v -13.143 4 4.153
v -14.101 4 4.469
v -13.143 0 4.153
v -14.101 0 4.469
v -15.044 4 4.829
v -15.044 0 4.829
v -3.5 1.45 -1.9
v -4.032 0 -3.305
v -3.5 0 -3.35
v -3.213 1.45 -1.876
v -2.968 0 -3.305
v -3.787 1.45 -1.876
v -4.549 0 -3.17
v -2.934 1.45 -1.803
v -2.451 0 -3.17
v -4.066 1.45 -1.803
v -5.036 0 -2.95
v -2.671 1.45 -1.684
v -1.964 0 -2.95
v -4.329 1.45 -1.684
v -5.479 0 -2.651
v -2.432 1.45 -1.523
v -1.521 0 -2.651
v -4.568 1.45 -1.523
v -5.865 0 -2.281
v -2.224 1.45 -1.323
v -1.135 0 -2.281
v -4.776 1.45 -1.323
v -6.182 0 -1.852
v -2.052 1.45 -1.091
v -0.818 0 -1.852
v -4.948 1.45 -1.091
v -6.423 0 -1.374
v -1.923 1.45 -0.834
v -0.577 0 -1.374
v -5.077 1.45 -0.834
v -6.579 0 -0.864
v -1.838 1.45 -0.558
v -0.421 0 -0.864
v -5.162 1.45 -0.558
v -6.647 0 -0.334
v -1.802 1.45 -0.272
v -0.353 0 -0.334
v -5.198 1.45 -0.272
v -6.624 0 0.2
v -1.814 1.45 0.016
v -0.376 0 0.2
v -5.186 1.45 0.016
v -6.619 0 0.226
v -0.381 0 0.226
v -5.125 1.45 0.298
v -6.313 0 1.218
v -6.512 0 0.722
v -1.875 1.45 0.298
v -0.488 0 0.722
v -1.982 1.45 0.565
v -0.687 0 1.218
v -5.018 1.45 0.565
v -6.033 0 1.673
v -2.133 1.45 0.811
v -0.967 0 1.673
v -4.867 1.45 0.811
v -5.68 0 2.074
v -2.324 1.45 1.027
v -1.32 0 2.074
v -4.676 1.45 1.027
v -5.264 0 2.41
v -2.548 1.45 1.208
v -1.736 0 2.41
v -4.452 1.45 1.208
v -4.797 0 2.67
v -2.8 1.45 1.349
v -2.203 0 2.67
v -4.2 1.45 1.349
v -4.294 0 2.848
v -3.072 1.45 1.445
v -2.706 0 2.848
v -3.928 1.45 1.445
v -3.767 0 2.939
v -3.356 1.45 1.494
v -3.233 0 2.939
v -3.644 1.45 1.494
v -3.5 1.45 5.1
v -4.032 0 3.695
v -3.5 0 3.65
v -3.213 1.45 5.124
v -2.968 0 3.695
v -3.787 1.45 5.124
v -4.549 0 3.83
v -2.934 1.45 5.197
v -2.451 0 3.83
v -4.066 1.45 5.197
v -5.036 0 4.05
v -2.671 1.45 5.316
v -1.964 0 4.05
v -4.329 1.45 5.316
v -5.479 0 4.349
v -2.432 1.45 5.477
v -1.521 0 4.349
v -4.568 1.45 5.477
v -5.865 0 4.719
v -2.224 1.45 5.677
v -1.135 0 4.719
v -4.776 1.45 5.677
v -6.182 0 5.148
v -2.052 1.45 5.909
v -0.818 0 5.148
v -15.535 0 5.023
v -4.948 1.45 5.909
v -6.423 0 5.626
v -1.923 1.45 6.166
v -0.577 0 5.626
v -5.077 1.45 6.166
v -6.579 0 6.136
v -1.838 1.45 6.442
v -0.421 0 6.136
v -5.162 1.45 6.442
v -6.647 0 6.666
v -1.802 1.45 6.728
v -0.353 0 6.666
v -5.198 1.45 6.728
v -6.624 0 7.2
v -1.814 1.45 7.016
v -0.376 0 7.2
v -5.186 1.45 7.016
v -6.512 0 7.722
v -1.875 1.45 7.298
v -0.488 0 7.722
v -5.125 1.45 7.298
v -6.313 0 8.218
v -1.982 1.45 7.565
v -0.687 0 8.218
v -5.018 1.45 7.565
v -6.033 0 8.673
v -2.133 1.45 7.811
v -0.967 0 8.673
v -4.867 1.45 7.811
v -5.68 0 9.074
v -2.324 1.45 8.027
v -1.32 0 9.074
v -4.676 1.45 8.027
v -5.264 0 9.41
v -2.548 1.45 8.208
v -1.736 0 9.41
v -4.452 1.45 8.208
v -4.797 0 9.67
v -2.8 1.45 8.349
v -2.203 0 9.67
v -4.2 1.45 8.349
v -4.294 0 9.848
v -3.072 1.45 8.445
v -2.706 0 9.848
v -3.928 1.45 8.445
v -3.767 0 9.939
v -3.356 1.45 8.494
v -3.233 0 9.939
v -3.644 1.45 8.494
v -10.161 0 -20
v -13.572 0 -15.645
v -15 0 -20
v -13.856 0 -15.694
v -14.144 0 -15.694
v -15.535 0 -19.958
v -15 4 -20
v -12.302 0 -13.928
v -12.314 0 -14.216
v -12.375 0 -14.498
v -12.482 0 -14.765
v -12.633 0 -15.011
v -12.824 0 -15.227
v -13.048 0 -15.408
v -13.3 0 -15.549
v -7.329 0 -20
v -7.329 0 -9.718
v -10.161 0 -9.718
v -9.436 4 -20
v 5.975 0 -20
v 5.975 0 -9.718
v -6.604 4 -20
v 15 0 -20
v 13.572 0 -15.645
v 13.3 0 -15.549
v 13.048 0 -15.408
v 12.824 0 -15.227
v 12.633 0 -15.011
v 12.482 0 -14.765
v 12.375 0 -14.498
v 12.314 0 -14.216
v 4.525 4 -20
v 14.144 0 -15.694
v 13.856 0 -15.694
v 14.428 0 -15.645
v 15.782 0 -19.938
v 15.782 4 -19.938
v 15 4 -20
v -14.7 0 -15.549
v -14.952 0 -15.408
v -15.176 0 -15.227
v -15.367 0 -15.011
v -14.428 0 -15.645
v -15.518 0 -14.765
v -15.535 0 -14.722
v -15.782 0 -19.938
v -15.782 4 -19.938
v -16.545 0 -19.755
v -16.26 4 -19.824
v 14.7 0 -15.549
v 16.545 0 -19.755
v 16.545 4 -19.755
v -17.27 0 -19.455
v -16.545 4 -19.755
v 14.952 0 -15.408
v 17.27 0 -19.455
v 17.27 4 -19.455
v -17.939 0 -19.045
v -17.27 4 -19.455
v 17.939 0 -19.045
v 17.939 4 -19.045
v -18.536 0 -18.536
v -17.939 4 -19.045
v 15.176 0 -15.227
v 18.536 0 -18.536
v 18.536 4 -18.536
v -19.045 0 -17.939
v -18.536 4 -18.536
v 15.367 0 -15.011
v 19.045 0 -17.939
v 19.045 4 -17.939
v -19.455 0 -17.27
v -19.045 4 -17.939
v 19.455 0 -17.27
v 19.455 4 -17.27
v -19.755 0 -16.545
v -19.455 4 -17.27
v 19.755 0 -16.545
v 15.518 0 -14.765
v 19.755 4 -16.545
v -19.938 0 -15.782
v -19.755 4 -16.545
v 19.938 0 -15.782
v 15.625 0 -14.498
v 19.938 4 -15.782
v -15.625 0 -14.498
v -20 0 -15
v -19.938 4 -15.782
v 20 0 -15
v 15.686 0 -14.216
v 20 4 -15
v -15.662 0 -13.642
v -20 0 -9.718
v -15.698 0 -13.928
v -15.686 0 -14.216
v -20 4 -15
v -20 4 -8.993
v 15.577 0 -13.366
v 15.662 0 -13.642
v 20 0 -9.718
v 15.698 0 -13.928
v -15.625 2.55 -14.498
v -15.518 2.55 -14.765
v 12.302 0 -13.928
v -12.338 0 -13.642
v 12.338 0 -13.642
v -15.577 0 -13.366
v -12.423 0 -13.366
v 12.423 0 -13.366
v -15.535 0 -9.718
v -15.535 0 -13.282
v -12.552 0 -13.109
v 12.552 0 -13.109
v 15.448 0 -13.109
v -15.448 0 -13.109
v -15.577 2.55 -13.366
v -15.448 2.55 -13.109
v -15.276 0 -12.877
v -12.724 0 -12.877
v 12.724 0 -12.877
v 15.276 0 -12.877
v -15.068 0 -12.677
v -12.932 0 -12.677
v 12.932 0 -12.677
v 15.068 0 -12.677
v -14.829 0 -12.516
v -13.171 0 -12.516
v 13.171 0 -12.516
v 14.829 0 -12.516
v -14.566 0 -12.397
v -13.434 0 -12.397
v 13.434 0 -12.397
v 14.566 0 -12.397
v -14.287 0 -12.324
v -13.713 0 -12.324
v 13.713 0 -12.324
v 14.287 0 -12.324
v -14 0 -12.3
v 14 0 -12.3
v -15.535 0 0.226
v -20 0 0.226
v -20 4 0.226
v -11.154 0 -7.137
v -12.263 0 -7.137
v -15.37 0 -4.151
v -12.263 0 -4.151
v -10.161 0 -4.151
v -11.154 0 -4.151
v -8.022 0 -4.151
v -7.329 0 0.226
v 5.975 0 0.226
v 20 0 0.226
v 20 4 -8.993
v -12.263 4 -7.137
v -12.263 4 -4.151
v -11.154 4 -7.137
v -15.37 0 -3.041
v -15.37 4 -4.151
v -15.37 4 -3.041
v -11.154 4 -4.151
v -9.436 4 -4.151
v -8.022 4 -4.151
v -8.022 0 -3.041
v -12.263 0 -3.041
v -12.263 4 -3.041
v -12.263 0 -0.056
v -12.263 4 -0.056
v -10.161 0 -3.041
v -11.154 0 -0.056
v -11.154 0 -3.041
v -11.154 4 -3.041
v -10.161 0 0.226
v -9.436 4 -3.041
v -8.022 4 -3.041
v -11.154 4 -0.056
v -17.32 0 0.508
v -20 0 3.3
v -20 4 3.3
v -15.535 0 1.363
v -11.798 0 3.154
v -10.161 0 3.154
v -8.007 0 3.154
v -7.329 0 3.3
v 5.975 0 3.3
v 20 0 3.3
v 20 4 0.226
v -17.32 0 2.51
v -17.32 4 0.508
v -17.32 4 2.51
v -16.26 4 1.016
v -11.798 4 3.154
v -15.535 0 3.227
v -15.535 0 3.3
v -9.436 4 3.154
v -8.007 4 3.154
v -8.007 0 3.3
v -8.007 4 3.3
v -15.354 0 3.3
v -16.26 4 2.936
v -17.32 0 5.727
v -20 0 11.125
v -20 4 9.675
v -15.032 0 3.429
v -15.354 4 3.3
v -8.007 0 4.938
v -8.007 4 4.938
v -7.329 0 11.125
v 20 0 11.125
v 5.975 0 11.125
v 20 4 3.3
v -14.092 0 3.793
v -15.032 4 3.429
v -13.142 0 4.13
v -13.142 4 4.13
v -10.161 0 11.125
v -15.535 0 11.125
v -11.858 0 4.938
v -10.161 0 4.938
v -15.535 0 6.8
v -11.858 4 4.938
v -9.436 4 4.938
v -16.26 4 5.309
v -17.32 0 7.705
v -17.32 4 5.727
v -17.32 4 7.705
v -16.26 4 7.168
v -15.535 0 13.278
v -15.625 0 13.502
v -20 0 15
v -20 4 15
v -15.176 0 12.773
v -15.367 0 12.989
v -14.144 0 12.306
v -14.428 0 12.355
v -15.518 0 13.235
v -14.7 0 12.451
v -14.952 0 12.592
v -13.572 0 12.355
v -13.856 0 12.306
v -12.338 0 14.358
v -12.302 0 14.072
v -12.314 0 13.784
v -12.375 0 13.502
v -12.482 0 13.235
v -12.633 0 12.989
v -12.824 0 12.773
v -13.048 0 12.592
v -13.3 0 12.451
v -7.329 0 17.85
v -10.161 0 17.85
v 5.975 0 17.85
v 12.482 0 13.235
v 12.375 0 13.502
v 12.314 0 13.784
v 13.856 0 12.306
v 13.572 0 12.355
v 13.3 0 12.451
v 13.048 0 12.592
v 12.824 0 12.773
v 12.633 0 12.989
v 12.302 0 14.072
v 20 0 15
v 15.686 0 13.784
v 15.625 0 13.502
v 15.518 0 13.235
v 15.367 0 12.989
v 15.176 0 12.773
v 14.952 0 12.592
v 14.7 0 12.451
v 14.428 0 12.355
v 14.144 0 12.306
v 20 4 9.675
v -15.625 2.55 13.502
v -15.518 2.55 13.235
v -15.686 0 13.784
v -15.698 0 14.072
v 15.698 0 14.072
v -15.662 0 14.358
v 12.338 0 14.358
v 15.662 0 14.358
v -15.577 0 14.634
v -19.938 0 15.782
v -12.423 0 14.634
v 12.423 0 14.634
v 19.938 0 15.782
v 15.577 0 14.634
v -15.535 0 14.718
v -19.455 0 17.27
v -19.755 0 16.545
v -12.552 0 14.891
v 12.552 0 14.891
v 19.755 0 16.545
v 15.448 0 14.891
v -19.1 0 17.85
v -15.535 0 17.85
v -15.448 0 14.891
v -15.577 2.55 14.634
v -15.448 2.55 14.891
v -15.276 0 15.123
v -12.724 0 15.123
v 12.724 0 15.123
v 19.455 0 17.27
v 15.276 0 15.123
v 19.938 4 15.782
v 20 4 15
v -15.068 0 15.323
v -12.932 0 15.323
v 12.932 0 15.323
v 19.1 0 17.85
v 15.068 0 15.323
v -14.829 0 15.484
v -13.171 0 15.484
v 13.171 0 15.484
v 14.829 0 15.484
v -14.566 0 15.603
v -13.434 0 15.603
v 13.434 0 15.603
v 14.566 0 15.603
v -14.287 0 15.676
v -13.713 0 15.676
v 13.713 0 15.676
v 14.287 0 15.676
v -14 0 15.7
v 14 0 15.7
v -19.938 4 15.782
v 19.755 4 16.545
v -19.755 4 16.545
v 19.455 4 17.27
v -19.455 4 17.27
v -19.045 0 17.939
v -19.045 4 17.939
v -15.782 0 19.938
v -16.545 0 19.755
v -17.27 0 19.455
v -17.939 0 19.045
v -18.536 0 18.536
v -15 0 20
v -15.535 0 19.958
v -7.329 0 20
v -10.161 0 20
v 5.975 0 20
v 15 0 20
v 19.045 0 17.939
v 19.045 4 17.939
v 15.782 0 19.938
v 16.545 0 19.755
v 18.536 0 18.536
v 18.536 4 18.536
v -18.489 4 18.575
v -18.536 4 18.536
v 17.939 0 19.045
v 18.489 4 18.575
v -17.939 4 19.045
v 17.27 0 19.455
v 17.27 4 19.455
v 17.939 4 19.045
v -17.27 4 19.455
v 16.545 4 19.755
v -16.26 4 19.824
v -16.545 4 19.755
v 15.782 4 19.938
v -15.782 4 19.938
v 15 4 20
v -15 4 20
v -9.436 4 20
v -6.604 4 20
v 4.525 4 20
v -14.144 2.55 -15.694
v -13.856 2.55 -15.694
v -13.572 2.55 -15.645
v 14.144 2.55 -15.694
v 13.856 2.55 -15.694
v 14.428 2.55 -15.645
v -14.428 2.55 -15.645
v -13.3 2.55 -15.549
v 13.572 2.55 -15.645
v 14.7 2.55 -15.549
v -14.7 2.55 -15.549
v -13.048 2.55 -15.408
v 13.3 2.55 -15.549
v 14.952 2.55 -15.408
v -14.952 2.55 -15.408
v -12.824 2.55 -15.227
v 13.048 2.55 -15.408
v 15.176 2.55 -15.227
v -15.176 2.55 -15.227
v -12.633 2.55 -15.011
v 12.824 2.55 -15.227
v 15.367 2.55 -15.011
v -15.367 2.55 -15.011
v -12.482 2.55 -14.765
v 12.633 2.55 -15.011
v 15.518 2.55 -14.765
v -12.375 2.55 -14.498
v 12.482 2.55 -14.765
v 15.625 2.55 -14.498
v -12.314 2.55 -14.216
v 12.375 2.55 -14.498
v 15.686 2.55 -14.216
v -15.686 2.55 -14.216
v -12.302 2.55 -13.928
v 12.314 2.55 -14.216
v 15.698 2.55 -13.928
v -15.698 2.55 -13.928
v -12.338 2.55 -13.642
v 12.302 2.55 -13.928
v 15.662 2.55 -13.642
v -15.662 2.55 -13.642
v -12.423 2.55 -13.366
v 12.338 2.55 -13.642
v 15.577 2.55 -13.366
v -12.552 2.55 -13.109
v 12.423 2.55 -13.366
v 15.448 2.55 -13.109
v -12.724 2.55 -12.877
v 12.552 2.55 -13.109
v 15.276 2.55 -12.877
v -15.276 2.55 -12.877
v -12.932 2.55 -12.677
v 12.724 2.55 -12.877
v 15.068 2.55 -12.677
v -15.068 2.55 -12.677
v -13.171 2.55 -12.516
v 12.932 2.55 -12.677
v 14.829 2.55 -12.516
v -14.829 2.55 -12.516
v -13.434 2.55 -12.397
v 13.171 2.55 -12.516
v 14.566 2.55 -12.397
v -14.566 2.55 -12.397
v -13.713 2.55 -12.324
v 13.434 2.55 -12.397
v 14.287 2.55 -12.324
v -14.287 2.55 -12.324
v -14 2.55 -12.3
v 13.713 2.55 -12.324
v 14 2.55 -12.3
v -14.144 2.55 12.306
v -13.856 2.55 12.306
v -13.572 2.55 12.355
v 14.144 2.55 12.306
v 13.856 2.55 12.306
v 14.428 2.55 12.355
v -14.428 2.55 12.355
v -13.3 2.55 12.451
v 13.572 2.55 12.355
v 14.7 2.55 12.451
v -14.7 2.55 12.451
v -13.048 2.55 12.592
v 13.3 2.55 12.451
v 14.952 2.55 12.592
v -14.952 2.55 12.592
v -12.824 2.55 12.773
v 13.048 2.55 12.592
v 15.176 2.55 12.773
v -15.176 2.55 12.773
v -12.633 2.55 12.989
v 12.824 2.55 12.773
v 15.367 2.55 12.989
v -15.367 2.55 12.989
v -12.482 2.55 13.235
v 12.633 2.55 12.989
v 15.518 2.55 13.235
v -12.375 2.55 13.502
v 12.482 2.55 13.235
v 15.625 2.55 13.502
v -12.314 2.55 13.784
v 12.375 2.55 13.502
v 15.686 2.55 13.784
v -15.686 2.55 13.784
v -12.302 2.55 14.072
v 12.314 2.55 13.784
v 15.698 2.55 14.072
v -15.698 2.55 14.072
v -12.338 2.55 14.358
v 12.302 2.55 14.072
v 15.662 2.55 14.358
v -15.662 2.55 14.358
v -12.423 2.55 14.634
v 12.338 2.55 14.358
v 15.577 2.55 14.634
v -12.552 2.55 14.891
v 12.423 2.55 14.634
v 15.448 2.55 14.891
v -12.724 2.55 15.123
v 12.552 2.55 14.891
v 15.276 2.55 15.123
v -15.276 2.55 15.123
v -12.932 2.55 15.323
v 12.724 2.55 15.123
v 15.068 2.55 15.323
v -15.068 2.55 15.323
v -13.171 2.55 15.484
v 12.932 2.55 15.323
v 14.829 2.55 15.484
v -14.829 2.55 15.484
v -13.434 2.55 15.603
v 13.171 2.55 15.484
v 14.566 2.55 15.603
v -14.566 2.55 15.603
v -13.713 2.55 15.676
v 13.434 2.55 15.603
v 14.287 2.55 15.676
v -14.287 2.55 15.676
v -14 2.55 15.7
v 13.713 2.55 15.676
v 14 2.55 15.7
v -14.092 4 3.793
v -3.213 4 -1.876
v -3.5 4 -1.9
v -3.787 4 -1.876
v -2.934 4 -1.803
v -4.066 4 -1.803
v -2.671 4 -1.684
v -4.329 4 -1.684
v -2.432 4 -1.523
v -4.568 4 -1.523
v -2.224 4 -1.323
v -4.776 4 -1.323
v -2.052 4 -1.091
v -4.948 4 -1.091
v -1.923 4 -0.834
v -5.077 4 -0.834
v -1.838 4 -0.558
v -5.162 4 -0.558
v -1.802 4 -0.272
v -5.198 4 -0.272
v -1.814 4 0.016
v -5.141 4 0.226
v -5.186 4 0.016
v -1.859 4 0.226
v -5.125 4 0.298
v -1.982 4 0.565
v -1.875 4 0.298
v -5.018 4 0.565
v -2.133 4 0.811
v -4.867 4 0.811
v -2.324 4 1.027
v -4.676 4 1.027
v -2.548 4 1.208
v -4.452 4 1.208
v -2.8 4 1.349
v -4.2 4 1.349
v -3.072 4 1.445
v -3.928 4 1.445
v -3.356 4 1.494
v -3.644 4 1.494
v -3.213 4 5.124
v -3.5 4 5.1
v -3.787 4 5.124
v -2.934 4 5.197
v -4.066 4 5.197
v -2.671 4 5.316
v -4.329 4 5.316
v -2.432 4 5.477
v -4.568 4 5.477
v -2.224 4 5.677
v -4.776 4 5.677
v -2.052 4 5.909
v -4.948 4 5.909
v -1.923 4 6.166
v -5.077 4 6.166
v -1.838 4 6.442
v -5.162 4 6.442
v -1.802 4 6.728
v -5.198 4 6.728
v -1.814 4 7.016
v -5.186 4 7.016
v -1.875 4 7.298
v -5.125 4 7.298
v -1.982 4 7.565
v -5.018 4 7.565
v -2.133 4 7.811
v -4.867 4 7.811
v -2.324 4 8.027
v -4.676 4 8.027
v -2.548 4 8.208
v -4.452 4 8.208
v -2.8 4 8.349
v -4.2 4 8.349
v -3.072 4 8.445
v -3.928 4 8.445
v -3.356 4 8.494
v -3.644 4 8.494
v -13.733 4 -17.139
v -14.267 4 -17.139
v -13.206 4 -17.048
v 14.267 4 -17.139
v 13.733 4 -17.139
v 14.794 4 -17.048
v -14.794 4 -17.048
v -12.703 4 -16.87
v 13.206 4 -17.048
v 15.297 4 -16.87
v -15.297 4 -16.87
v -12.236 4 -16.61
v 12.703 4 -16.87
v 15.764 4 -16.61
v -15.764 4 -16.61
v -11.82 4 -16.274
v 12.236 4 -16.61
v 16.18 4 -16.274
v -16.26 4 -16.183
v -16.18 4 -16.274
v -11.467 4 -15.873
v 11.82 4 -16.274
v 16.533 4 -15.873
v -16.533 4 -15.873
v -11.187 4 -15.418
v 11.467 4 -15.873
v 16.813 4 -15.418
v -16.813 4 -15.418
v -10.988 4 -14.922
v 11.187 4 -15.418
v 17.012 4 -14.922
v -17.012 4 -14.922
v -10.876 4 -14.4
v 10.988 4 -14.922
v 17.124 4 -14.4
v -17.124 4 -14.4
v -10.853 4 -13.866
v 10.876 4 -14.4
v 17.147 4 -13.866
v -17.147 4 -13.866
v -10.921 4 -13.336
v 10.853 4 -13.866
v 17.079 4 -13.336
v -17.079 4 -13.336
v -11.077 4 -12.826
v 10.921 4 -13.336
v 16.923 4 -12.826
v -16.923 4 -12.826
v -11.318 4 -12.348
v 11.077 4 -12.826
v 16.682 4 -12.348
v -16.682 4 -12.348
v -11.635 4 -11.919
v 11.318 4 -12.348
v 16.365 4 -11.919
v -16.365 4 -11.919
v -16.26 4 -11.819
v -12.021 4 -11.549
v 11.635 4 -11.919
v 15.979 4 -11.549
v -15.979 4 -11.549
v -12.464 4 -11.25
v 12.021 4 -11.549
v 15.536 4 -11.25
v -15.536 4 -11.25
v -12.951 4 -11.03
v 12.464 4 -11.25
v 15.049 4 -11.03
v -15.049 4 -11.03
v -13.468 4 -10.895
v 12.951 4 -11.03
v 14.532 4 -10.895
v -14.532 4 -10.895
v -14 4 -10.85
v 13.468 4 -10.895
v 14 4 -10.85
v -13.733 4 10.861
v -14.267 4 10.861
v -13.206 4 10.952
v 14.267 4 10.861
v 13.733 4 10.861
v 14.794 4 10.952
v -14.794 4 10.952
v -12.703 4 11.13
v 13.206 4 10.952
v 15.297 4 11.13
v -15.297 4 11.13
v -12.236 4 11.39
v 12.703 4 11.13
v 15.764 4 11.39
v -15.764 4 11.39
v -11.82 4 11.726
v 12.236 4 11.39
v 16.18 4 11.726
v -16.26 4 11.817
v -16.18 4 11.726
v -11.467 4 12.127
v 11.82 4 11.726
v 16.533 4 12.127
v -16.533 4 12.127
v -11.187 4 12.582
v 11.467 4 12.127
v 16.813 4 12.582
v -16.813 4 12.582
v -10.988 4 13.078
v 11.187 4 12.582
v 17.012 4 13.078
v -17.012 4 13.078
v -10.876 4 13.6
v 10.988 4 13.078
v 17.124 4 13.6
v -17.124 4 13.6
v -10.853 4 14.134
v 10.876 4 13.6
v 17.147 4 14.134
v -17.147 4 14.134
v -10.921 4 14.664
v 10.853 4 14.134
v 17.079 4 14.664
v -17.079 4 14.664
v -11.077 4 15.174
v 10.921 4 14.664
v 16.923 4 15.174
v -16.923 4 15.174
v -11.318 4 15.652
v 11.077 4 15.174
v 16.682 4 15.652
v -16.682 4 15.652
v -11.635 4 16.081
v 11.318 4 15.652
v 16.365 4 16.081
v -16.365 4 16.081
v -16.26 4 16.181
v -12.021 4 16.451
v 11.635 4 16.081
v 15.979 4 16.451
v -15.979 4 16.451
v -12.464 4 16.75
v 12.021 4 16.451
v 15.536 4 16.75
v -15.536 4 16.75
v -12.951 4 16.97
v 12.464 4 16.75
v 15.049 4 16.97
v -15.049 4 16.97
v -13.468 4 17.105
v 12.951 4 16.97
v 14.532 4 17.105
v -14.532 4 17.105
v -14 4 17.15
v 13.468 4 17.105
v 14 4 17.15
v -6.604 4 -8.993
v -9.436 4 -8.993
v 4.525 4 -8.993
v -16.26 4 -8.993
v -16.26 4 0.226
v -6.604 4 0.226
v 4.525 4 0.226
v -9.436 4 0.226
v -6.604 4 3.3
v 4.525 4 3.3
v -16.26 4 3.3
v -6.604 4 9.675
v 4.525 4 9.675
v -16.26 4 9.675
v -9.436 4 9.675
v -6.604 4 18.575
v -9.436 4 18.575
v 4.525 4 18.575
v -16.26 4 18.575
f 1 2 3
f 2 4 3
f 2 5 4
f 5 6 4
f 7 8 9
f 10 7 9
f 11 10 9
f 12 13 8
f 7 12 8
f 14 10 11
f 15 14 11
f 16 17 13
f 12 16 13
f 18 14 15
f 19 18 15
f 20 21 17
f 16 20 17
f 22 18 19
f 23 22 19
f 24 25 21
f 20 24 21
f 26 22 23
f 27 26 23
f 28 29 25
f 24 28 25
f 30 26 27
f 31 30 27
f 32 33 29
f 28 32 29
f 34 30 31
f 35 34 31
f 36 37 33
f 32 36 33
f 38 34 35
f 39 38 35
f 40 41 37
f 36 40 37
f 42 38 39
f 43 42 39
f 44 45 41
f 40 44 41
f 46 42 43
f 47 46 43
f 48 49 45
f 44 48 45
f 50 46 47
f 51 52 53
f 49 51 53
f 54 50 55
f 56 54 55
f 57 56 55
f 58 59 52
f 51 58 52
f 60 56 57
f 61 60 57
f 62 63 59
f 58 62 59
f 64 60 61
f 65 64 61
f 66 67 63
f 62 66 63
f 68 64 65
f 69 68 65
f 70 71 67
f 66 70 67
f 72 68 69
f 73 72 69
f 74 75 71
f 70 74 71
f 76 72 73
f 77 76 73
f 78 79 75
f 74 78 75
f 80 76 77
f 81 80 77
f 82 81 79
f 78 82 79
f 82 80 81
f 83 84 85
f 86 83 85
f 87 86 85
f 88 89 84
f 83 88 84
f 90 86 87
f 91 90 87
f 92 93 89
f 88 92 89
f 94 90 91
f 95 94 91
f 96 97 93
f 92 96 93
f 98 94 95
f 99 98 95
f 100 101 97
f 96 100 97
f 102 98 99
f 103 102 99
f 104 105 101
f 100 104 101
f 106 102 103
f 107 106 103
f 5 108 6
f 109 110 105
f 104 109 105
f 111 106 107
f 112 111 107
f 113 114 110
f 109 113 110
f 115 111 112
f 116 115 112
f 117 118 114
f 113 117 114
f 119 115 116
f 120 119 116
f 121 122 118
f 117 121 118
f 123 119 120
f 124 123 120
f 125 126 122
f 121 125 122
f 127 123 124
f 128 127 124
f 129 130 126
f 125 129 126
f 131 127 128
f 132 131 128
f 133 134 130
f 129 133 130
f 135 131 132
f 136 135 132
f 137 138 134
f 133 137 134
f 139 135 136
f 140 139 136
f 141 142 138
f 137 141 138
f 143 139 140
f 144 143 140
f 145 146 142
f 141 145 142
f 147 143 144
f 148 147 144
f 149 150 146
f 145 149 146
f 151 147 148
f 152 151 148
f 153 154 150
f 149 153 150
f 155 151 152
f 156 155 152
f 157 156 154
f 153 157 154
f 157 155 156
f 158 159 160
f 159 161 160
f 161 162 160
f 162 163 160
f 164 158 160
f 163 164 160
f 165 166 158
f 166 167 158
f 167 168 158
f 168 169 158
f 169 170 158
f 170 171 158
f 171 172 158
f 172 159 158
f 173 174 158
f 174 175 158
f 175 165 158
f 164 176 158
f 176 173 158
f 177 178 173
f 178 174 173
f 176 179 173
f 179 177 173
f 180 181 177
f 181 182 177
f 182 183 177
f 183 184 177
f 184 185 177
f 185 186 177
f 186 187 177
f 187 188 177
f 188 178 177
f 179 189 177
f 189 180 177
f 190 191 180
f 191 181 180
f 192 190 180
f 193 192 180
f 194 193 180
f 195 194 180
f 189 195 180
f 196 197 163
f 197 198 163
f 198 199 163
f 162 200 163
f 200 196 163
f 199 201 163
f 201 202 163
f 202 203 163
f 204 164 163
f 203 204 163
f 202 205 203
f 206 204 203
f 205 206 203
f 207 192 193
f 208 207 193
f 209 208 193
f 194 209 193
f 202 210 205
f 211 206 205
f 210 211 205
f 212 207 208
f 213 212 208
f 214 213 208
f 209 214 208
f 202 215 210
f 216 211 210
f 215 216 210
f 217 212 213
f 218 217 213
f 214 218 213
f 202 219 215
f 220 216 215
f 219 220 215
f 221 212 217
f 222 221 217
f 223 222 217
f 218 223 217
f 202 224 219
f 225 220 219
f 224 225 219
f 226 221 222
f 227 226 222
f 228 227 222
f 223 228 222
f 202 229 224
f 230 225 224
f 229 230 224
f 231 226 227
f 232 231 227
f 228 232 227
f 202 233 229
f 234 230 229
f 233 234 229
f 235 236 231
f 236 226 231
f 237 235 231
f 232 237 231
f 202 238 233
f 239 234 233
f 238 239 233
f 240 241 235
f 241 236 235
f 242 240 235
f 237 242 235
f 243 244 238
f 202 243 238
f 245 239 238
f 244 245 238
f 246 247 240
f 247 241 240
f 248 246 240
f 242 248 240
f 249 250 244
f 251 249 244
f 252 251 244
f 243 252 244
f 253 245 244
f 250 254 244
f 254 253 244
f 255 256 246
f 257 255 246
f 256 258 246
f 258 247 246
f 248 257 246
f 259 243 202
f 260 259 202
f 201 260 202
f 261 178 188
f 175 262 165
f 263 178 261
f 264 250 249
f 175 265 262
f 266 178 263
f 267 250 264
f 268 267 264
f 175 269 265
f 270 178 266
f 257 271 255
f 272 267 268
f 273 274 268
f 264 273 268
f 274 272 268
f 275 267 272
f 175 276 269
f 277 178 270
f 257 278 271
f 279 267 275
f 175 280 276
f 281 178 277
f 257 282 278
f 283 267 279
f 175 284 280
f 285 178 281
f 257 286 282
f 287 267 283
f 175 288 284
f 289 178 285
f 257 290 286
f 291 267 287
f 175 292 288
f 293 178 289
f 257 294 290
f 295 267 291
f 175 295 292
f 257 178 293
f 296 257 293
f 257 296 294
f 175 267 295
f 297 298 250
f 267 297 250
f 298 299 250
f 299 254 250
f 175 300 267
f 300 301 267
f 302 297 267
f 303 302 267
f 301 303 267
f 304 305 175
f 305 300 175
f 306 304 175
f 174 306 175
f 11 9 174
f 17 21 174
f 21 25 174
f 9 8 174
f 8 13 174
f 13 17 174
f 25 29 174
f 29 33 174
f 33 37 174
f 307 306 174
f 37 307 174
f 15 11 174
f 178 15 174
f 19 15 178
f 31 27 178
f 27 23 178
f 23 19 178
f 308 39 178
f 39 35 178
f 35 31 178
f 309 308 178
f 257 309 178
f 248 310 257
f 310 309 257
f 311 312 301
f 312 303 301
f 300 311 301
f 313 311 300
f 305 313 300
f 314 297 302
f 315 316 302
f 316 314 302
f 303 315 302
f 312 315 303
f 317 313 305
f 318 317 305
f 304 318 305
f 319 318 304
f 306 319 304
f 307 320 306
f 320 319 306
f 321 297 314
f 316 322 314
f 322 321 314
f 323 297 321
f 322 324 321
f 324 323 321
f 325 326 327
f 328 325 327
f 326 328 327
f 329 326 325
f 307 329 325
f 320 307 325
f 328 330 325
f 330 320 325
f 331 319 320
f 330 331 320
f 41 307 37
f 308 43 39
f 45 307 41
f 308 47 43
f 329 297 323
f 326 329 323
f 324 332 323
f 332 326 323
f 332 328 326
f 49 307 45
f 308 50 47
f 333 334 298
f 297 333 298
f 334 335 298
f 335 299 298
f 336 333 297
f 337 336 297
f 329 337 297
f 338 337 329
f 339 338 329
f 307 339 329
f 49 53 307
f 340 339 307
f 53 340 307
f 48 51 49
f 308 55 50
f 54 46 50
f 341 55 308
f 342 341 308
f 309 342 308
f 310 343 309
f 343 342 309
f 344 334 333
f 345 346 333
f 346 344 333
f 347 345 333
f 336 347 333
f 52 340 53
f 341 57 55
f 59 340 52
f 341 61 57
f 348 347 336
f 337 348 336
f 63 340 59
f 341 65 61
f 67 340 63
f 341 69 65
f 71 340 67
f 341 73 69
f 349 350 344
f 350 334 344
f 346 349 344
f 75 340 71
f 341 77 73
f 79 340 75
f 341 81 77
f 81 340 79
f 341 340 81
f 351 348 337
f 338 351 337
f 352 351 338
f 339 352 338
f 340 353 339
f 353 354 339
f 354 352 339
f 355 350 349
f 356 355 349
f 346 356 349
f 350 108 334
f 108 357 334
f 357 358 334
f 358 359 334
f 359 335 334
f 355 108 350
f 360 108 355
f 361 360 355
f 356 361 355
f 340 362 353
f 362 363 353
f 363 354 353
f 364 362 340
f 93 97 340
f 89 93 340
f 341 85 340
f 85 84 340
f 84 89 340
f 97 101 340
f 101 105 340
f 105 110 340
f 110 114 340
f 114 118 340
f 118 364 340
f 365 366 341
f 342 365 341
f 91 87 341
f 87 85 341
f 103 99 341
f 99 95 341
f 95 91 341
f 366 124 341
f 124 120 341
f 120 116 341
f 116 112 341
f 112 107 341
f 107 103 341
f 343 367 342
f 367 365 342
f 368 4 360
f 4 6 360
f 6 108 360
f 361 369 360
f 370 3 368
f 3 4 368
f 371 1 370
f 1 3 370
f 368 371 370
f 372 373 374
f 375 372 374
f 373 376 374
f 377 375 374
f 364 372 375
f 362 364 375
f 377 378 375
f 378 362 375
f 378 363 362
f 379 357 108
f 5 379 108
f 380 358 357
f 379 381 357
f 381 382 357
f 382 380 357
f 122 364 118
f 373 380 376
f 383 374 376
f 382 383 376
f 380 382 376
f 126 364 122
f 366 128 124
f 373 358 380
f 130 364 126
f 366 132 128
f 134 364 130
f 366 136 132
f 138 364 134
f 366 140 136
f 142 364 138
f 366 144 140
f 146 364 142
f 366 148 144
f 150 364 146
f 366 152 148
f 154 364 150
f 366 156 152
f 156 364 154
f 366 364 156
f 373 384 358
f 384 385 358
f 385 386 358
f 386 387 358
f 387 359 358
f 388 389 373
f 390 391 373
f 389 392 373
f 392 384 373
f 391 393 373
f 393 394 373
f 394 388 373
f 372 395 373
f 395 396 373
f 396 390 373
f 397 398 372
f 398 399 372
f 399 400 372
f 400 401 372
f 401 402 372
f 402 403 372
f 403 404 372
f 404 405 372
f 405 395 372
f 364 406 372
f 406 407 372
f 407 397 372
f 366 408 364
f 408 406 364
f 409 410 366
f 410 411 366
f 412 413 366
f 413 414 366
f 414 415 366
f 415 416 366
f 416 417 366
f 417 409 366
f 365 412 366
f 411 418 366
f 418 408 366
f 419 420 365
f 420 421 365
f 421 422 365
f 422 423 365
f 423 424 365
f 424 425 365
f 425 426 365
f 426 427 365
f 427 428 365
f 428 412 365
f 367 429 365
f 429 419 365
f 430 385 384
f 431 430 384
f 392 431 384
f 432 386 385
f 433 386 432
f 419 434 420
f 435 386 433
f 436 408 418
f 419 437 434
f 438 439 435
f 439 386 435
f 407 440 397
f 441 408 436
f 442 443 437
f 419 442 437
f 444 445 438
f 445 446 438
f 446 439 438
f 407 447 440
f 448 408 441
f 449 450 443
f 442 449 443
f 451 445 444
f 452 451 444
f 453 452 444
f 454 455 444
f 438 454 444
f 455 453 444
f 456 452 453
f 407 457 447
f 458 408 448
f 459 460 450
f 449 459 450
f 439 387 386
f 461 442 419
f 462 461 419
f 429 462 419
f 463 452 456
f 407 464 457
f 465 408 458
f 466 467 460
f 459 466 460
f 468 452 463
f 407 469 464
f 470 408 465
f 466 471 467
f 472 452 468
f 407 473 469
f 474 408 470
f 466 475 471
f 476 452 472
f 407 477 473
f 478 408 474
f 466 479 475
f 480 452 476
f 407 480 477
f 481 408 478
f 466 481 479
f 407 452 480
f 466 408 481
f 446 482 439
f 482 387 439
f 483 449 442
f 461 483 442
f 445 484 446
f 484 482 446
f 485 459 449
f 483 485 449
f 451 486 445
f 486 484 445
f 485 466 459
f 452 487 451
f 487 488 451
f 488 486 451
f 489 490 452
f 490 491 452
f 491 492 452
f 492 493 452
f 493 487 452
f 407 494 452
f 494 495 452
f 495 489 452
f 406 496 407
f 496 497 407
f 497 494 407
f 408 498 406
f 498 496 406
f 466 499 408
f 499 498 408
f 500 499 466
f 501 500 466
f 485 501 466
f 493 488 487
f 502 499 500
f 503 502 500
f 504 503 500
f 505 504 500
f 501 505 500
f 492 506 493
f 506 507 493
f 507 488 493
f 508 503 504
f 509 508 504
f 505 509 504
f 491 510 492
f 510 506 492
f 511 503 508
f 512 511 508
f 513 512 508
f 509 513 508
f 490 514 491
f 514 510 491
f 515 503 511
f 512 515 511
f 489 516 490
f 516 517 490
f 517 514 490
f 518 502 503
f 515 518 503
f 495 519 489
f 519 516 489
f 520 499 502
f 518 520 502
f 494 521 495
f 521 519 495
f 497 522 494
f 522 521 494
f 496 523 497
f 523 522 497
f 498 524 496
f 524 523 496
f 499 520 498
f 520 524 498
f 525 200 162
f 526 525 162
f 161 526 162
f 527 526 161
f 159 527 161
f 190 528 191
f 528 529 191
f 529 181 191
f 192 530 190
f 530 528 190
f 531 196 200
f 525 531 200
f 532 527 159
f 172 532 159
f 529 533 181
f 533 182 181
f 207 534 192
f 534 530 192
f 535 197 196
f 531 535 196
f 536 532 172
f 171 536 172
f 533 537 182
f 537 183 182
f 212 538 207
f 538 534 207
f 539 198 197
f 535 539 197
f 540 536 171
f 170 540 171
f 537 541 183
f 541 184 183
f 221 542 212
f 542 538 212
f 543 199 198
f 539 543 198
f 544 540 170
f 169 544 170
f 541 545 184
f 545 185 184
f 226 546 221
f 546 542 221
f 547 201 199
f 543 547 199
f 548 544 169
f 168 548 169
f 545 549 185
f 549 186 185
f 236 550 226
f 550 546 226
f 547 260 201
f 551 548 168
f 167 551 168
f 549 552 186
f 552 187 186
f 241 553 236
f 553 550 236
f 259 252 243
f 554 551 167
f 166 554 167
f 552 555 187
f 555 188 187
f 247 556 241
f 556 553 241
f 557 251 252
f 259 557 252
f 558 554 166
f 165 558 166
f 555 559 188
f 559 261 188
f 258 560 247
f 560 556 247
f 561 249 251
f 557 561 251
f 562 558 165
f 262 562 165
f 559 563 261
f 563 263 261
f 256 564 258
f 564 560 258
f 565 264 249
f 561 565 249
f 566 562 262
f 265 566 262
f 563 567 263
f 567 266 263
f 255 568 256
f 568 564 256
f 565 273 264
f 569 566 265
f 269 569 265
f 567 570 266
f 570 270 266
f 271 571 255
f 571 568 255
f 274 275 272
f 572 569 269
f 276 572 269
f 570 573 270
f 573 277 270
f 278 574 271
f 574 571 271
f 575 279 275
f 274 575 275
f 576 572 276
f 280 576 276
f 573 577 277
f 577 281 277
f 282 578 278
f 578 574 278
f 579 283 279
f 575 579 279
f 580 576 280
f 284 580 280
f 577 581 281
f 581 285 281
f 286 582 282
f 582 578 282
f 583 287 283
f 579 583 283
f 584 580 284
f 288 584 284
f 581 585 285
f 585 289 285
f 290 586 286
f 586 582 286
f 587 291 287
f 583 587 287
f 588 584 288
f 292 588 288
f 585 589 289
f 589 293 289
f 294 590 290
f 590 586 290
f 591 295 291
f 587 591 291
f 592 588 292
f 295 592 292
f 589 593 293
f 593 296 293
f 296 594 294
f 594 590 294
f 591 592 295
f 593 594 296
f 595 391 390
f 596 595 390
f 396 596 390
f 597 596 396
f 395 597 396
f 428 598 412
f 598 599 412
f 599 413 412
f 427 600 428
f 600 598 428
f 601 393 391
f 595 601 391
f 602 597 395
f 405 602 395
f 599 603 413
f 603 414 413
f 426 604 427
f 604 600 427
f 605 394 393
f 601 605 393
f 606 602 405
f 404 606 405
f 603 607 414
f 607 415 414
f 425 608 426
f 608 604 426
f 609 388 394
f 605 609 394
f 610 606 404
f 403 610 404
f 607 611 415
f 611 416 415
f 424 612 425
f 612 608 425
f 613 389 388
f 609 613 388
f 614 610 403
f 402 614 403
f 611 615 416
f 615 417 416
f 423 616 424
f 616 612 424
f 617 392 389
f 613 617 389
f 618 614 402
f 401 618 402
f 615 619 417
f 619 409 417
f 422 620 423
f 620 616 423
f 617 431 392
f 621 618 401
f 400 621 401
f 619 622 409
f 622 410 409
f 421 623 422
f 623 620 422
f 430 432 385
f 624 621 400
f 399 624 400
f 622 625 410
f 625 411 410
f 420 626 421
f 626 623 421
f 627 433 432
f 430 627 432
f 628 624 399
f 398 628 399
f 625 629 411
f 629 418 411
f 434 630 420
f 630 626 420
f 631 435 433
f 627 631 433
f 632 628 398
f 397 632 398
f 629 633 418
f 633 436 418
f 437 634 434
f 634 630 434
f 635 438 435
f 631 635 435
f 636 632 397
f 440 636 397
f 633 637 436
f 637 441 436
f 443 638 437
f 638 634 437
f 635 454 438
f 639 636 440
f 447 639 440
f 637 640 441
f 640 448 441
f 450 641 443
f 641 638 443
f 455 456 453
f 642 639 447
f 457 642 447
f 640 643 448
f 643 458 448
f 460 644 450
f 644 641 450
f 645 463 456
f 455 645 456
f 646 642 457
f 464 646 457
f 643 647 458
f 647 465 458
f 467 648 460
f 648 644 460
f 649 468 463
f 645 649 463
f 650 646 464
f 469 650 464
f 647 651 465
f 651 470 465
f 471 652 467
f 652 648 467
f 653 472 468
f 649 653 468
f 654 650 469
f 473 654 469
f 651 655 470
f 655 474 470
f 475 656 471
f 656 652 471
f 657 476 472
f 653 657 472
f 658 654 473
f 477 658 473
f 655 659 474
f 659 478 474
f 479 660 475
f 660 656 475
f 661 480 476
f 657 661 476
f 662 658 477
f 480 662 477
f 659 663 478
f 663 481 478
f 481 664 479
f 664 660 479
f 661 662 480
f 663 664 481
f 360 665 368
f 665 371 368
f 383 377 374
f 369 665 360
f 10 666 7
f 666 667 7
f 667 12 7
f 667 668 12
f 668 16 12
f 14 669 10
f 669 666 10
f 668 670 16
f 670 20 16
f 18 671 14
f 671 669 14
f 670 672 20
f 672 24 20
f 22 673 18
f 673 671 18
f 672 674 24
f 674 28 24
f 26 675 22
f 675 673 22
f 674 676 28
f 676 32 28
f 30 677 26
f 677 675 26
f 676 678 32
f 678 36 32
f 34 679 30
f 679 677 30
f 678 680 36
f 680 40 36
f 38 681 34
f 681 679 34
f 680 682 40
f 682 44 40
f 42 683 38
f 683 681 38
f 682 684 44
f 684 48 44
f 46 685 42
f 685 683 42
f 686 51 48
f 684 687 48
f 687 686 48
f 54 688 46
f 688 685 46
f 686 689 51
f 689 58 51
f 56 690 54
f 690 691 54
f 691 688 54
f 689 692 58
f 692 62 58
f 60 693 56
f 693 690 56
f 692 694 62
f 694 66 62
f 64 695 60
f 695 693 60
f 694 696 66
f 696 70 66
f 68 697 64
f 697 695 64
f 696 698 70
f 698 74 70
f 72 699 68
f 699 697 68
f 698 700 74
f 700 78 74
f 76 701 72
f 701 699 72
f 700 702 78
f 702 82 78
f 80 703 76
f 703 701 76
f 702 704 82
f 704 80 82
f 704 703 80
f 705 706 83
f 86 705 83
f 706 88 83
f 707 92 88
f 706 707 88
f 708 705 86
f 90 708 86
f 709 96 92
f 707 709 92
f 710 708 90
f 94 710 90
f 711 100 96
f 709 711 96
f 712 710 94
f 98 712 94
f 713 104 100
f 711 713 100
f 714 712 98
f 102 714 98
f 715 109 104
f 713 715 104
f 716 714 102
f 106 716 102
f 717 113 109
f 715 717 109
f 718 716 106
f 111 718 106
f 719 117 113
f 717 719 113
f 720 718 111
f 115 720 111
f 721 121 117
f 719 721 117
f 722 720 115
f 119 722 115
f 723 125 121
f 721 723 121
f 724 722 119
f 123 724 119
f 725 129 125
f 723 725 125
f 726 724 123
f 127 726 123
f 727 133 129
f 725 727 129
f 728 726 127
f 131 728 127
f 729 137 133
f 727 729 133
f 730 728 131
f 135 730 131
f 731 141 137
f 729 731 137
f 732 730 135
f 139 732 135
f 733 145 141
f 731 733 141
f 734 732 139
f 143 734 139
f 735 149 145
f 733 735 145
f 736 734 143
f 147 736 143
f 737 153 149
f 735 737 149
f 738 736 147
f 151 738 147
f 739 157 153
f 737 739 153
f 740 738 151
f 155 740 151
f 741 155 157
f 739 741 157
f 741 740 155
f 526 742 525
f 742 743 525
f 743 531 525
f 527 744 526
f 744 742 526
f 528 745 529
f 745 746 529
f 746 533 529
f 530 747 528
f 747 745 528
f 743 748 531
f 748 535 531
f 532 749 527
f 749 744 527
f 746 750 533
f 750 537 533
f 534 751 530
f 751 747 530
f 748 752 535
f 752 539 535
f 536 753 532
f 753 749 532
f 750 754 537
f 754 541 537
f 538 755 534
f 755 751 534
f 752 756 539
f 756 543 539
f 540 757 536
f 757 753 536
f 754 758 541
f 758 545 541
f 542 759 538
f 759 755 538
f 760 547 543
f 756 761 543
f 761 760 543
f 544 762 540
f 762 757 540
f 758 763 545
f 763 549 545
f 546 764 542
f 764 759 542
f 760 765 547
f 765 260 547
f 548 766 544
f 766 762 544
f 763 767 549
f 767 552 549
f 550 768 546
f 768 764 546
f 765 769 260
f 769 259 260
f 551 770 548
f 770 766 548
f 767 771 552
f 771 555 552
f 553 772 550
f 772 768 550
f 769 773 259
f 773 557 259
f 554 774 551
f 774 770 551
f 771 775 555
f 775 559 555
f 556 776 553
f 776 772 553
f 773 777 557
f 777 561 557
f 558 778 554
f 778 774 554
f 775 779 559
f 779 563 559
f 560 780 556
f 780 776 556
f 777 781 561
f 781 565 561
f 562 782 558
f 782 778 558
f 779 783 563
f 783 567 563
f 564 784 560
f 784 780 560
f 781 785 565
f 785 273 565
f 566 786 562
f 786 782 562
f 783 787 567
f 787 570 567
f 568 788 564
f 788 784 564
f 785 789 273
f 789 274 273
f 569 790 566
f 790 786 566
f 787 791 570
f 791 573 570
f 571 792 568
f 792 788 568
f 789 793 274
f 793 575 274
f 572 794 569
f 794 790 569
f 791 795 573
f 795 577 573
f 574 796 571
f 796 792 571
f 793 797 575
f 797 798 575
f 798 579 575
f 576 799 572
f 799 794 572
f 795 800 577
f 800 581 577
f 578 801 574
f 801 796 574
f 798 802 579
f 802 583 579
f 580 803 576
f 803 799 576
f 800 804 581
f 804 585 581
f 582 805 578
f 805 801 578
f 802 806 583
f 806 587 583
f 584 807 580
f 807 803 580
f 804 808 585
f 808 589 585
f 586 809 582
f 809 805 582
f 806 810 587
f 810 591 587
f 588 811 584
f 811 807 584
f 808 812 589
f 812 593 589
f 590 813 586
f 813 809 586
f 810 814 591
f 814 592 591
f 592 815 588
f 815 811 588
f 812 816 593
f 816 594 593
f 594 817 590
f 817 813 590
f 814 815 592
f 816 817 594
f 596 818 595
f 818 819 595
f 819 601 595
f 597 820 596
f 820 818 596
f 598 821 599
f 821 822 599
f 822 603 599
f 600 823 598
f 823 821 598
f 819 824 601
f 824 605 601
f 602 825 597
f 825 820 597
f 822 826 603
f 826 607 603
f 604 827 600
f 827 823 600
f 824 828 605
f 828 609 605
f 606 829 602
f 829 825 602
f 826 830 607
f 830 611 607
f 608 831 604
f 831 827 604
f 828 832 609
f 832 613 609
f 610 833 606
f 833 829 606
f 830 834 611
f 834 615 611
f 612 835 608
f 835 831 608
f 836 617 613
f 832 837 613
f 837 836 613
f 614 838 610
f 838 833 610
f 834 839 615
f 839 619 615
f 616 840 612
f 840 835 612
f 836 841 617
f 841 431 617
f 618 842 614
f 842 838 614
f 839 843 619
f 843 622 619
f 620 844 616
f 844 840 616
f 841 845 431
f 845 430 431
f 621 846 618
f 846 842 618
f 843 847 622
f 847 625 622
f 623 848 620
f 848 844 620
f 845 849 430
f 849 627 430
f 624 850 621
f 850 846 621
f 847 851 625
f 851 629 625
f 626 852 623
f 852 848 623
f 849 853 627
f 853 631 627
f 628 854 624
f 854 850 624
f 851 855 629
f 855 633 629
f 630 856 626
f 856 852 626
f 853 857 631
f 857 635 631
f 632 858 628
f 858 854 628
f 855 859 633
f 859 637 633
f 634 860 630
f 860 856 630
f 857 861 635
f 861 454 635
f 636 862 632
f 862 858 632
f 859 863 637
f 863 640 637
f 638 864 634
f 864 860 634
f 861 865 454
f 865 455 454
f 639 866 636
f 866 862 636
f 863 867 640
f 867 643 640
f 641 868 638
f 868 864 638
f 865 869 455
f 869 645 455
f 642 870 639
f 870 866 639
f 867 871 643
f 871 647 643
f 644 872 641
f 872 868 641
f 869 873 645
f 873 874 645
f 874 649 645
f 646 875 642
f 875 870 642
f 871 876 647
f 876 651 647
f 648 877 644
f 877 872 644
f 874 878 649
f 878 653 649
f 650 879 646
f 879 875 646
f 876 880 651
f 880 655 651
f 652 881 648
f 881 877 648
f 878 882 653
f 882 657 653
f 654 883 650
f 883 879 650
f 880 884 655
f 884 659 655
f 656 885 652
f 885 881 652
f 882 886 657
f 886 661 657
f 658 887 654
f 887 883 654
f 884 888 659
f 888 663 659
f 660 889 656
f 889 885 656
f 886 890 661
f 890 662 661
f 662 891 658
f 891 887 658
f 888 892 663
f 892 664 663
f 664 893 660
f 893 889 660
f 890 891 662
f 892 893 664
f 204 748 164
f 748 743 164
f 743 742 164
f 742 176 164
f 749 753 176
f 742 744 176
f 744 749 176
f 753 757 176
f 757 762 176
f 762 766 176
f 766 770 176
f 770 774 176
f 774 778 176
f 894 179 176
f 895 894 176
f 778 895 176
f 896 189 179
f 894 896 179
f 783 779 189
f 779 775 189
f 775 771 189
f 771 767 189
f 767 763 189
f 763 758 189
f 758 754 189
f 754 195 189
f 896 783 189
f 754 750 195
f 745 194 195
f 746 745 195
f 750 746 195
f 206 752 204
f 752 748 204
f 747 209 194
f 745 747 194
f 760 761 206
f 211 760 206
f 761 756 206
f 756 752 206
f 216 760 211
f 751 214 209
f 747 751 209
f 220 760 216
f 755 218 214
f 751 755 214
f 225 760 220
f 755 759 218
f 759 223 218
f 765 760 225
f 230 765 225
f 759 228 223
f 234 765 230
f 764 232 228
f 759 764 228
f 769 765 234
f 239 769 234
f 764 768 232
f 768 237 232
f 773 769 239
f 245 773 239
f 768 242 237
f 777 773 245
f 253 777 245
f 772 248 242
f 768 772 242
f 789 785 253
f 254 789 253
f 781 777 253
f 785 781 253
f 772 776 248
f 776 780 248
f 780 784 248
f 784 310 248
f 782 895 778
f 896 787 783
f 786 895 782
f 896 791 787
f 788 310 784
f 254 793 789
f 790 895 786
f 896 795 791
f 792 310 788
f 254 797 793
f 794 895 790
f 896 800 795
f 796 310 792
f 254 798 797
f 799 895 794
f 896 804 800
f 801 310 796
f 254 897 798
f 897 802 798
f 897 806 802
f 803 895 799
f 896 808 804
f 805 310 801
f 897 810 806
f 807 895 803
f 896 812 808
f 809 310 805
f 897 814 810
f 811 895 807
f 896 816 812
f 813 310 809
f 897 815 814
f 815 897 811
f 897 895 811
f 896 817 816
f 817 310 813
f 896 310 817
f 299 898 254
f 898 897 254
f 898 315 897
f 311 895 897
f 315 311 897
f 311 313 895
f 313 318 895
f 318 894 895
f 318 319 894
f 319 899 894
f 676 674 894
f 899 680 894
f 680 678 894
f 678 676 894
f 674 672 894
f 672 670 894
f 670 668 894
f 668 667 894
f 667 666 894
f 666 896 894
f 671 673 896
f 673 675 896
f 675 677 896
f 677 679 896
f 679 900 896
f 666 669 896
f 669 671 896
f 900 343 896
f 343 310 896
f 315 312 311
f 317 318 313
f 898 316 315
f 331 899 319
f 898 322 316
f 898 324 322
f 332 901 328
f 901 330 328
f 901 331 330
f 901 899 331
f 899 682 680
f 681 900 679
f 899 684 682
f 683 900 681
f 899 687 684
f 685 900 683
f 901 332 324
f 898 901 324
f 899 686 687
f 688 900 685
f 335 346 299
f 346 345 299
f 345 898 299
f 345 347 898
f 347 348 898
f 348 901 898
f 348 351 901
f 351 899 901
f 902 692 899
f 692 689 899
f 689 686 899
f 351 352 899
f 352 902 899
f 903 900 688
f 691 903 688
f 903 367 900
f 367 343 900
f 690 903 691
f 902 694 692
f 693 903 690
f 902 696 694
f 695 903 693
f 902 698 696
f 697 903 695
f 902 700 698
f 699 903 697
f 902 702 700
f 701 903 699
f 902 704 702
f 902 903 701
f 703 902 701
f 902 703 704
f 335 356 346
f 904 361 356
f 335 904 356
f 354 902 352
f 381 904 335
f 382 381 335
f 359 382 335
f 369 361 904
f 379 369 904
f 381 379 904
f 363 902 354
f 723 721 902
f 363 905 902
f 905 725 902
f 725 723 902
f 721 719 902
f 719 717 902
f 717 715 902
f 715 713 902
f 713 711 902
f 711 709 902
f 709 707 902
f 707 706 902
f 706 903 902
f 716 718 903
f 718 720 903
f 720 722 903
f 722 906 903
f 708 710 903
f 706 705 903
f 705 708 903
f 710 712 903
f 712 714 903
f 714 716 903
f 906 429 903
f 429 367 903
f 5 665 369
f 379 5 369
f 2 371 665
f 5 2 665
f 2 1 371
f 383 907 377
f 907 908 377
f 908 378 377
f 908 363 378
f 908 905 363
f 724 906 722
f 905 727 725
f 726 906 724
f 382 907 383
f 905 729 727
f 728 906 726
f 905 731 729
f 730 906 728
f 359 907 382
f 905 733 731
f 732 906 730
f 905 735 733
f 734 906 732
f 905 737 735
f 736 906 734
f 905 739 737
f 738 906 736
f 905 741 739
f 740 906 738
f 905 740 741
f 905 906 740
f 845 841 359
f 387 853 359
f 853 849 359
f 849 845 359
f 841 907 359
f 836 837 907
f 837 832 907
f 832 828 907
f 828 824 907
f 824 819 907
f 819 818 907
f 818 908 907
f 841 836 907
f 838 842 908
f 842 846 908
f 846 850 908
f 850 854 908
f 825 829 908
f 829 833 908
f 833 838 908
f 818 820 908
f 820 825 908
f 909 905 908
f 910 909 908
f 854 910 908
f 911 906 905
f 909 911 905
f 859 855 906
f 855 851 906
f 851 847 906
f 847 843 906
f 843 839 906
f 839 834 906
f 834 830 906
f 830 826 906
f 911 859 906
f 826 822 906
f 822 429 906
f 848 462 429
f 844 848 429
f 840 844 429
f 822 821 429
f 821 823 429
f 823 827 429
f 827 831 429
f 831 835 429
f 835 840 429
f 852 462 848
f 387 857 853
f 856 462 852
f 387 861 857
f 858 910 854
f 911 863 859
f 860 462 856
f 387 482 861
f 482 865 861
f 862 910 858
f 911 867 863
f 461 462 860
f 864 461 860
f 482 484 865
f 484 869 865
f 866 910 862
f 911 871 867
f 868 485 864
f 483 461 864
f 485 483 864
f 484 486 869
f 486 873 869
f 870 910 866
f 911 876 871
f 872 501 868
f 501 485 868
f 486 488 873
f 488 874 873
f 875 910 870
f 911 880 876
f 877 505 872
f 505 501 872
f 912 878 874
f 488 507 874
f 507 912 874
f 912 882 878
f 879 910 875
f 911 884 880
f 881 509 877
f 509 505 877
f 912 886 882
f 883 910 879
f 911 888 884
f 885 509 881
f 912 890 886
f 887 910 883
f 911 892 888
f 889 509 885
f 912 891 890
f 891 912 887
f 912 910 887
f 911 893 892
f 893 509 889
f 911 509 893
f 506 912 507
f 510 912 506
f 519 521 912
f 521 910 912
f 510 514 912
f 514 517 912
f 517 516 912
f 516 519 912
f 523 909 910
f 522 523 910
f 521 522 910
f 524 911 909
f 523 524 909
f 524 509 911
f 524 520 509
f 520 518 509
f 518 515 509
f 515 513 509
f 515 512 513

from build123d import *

# Parameters (mm, degrees)
BOSS_EXTRUDE1_DEPTH                                 = 4
CSK_FOR_M3_COUNTERSUNK_FLAT_HEAD_SCREW1_D           = 3.4
CSK_FOR_M3_COUNTERSUNK_FLAT_HEAD_SCREW1_CSINK_D     = 6.3
CSK_FOR_M3_COUNTERSUNK_FLAT_HEAD_SCREW1_CSINK_ANGLE = 90
CSK_FOR_M3_COUNTERSUNK_FLAT_HEAD_SCREW2_D           = 3.4
CSK_FOR_M3_COUNTERSUNK_FLAT_HEAD_SCREW2_CSINK_D     = 6.3
CSK_FOR_M3_COUNTERSUNK_FLAT_HEAD_SCREW2_CSINK_ANGLE = 90
CUT_EXTRUDE1_DEPTH                                  = 4


with BuildPart() as part:
    # Sketch1 → Boss-Extrude1 (new body)
    with BuildSketch(Plane(origin=(0, 0, 0), x_dir=(1, 0, 0), z_dir=(0, 1, 0))):
        with BuildLine():
            Line((-15, -20), (15, -20))
            ThreePointArc((15, -20), (18.535533906, -18.535533906), (20, -15))
            Line((20, -15), (20, 15))
            ThreePointArc((20, 15), (18.535533906, 18.535533906), (15, 20))
            Line((15, 20), (-15, 20))
            ThreePointArc((-15, 20), (-18.535533906, 18.535533906), (-20, 15))
            Line((-20, 15), (-20, -15))
            ThreePointArc((-20, -15), (-18.535533906, -18.535533906), (-15, -20))
        make_face()
    extrude(amount=BOSS_EXTRUDE1_DEPTH)

    # CSK for M3 Countersunk Flat Head Screw1 (through all)
    with Locations(Plane(origin=(-14, 4, -14), x_dir=(0, 0, 1), z_dir=(0, 1, 0))):
        with Locations((0, 0), (0, 28), (28, 28), (28, 0)):
            CounterSinkHole(CSK_FOR_M3_COUNTERSUNK_FLAT_HEAD_SCREW1_D / 2, CSK_FOR_M3_COUNTERSUNK_FLAT_HEAD_SCREW1_CSINK_D / 2, counter_sink_angle=CSK_FOR_M3_COUNTERSUNK_FLAT_HEAD_SCREW1_CSINK_ANGLE)

    # CSK for M3 Countersunk Flat Head Screw2 (through all)
    with Locations(Plane(origin=(0, 0, 0), x_dir=(-1, 0, 0), z_dir=(0, -1, 0))):
        with Locations((3.5, 0.2), (3.5, -6.8)):
            CounterSinkHole(CSK_FOR_M3_COUNTERSUNK_FLAT_HEAD_SCREW2_D / 2, CSK_FOR_M3_COUNTERSUNK_FLAT_HEAD_SCREW2_CSINK_D / 2, counter_sink_angle=CSK_FOR_M3_COUNTERSUNK_FLAT_HEAD_SCREW2_CSINK_ANGLE)

    # Sketch7 → Cut-Extrude1 (cut)
    with BuildSketch(Plane(origin=(0, 4, 0), x_dir=(1, 0, 0), z_dir=(0, 1, 0))):
        Polygon((-12.263344174, 7.136676397), (-11.15360872, 7.136676397), (-11.15360872, 4.150967788), (-8.022255789, 4.150967788), (-8.022255789, 3.041232335), (-11.15360872, 3.041232335), (-11.15360872, 0.055523726), (-12.263344174, 0.055523726), (-12.263344174, 3.041232335), (-15.370423051, 3.041232335), (-15.370423051, 4.150967788), (-12.263344174, 4.150967788), align=None)
        with BuildLine():
            add(Edge.make_bspline(
                [(-15.043692162, -4.829120306), (-14.880436161, -4.763861041), (-14.5584639, -4.635157209), (-14.077627456, -4.457919156), (-13.607003536, -4.298363006), (-13.296000815, -4.200734384), (-13.143053989, -4.152721981)],
                knots=[0, 0, 0, 0, 0.000527431, 0.001040195, 0.001537166, 0.002018074, 0.002018074, 0.002018074, 0.002018074], degree=3))
            Line((-13.143053989, -4.152721981), (-13.142217189, -4.129946622))
            add(Edge.make_bspline(
                [(-13.142217189, -4.129946622), (-13.300142366, -4.076064923), (-13.613682824, -3.969089626), (-14.081290903, -3.798233499), (-14.553659216, -3.619087412), (-14.870442844, -3.493499611), (-15.032410797, -3.429287962)],
                knots=[0, 0, 0, 0, 0.000500579, 0.000993836, 0.001493443, 0.002016132, 0.002016132, 0.002016132, 0.002016132], degree=3))
            Line((-15.032410797, -3.429287962), (-17.320356965, -2.510346296))
            Line((-17.320356965, -2.510346296), (-17.320356965, -0.507736863))
            Line((-17.320356965, -0.507736863), (-11.797862272, -3.15360872))
            Line((-11.797862272, -3.15360872), (-8.007023631, -3.15360872))
            Line((-8.007023631, -3.15360872), (-8.007023631, -4.937612774))
            Line((-8.007023631, -4.937612774), (-11.858418799, -4.937612774))
            Line((-11.858418799, -4.937612774), (-17.320356965, -7.7048549))
            Line((-17.320356965, -7.7048549), (-17.320356965, -5.726519521))
            Line((-17.320356965, -5.726519521), (-15.043692162, -4.829120306))
        make_face()
    extrude(amount=-CUT_EXTRUDE1_DEPTH, mode=Mode.SUBTRACT)


solid = part.part
